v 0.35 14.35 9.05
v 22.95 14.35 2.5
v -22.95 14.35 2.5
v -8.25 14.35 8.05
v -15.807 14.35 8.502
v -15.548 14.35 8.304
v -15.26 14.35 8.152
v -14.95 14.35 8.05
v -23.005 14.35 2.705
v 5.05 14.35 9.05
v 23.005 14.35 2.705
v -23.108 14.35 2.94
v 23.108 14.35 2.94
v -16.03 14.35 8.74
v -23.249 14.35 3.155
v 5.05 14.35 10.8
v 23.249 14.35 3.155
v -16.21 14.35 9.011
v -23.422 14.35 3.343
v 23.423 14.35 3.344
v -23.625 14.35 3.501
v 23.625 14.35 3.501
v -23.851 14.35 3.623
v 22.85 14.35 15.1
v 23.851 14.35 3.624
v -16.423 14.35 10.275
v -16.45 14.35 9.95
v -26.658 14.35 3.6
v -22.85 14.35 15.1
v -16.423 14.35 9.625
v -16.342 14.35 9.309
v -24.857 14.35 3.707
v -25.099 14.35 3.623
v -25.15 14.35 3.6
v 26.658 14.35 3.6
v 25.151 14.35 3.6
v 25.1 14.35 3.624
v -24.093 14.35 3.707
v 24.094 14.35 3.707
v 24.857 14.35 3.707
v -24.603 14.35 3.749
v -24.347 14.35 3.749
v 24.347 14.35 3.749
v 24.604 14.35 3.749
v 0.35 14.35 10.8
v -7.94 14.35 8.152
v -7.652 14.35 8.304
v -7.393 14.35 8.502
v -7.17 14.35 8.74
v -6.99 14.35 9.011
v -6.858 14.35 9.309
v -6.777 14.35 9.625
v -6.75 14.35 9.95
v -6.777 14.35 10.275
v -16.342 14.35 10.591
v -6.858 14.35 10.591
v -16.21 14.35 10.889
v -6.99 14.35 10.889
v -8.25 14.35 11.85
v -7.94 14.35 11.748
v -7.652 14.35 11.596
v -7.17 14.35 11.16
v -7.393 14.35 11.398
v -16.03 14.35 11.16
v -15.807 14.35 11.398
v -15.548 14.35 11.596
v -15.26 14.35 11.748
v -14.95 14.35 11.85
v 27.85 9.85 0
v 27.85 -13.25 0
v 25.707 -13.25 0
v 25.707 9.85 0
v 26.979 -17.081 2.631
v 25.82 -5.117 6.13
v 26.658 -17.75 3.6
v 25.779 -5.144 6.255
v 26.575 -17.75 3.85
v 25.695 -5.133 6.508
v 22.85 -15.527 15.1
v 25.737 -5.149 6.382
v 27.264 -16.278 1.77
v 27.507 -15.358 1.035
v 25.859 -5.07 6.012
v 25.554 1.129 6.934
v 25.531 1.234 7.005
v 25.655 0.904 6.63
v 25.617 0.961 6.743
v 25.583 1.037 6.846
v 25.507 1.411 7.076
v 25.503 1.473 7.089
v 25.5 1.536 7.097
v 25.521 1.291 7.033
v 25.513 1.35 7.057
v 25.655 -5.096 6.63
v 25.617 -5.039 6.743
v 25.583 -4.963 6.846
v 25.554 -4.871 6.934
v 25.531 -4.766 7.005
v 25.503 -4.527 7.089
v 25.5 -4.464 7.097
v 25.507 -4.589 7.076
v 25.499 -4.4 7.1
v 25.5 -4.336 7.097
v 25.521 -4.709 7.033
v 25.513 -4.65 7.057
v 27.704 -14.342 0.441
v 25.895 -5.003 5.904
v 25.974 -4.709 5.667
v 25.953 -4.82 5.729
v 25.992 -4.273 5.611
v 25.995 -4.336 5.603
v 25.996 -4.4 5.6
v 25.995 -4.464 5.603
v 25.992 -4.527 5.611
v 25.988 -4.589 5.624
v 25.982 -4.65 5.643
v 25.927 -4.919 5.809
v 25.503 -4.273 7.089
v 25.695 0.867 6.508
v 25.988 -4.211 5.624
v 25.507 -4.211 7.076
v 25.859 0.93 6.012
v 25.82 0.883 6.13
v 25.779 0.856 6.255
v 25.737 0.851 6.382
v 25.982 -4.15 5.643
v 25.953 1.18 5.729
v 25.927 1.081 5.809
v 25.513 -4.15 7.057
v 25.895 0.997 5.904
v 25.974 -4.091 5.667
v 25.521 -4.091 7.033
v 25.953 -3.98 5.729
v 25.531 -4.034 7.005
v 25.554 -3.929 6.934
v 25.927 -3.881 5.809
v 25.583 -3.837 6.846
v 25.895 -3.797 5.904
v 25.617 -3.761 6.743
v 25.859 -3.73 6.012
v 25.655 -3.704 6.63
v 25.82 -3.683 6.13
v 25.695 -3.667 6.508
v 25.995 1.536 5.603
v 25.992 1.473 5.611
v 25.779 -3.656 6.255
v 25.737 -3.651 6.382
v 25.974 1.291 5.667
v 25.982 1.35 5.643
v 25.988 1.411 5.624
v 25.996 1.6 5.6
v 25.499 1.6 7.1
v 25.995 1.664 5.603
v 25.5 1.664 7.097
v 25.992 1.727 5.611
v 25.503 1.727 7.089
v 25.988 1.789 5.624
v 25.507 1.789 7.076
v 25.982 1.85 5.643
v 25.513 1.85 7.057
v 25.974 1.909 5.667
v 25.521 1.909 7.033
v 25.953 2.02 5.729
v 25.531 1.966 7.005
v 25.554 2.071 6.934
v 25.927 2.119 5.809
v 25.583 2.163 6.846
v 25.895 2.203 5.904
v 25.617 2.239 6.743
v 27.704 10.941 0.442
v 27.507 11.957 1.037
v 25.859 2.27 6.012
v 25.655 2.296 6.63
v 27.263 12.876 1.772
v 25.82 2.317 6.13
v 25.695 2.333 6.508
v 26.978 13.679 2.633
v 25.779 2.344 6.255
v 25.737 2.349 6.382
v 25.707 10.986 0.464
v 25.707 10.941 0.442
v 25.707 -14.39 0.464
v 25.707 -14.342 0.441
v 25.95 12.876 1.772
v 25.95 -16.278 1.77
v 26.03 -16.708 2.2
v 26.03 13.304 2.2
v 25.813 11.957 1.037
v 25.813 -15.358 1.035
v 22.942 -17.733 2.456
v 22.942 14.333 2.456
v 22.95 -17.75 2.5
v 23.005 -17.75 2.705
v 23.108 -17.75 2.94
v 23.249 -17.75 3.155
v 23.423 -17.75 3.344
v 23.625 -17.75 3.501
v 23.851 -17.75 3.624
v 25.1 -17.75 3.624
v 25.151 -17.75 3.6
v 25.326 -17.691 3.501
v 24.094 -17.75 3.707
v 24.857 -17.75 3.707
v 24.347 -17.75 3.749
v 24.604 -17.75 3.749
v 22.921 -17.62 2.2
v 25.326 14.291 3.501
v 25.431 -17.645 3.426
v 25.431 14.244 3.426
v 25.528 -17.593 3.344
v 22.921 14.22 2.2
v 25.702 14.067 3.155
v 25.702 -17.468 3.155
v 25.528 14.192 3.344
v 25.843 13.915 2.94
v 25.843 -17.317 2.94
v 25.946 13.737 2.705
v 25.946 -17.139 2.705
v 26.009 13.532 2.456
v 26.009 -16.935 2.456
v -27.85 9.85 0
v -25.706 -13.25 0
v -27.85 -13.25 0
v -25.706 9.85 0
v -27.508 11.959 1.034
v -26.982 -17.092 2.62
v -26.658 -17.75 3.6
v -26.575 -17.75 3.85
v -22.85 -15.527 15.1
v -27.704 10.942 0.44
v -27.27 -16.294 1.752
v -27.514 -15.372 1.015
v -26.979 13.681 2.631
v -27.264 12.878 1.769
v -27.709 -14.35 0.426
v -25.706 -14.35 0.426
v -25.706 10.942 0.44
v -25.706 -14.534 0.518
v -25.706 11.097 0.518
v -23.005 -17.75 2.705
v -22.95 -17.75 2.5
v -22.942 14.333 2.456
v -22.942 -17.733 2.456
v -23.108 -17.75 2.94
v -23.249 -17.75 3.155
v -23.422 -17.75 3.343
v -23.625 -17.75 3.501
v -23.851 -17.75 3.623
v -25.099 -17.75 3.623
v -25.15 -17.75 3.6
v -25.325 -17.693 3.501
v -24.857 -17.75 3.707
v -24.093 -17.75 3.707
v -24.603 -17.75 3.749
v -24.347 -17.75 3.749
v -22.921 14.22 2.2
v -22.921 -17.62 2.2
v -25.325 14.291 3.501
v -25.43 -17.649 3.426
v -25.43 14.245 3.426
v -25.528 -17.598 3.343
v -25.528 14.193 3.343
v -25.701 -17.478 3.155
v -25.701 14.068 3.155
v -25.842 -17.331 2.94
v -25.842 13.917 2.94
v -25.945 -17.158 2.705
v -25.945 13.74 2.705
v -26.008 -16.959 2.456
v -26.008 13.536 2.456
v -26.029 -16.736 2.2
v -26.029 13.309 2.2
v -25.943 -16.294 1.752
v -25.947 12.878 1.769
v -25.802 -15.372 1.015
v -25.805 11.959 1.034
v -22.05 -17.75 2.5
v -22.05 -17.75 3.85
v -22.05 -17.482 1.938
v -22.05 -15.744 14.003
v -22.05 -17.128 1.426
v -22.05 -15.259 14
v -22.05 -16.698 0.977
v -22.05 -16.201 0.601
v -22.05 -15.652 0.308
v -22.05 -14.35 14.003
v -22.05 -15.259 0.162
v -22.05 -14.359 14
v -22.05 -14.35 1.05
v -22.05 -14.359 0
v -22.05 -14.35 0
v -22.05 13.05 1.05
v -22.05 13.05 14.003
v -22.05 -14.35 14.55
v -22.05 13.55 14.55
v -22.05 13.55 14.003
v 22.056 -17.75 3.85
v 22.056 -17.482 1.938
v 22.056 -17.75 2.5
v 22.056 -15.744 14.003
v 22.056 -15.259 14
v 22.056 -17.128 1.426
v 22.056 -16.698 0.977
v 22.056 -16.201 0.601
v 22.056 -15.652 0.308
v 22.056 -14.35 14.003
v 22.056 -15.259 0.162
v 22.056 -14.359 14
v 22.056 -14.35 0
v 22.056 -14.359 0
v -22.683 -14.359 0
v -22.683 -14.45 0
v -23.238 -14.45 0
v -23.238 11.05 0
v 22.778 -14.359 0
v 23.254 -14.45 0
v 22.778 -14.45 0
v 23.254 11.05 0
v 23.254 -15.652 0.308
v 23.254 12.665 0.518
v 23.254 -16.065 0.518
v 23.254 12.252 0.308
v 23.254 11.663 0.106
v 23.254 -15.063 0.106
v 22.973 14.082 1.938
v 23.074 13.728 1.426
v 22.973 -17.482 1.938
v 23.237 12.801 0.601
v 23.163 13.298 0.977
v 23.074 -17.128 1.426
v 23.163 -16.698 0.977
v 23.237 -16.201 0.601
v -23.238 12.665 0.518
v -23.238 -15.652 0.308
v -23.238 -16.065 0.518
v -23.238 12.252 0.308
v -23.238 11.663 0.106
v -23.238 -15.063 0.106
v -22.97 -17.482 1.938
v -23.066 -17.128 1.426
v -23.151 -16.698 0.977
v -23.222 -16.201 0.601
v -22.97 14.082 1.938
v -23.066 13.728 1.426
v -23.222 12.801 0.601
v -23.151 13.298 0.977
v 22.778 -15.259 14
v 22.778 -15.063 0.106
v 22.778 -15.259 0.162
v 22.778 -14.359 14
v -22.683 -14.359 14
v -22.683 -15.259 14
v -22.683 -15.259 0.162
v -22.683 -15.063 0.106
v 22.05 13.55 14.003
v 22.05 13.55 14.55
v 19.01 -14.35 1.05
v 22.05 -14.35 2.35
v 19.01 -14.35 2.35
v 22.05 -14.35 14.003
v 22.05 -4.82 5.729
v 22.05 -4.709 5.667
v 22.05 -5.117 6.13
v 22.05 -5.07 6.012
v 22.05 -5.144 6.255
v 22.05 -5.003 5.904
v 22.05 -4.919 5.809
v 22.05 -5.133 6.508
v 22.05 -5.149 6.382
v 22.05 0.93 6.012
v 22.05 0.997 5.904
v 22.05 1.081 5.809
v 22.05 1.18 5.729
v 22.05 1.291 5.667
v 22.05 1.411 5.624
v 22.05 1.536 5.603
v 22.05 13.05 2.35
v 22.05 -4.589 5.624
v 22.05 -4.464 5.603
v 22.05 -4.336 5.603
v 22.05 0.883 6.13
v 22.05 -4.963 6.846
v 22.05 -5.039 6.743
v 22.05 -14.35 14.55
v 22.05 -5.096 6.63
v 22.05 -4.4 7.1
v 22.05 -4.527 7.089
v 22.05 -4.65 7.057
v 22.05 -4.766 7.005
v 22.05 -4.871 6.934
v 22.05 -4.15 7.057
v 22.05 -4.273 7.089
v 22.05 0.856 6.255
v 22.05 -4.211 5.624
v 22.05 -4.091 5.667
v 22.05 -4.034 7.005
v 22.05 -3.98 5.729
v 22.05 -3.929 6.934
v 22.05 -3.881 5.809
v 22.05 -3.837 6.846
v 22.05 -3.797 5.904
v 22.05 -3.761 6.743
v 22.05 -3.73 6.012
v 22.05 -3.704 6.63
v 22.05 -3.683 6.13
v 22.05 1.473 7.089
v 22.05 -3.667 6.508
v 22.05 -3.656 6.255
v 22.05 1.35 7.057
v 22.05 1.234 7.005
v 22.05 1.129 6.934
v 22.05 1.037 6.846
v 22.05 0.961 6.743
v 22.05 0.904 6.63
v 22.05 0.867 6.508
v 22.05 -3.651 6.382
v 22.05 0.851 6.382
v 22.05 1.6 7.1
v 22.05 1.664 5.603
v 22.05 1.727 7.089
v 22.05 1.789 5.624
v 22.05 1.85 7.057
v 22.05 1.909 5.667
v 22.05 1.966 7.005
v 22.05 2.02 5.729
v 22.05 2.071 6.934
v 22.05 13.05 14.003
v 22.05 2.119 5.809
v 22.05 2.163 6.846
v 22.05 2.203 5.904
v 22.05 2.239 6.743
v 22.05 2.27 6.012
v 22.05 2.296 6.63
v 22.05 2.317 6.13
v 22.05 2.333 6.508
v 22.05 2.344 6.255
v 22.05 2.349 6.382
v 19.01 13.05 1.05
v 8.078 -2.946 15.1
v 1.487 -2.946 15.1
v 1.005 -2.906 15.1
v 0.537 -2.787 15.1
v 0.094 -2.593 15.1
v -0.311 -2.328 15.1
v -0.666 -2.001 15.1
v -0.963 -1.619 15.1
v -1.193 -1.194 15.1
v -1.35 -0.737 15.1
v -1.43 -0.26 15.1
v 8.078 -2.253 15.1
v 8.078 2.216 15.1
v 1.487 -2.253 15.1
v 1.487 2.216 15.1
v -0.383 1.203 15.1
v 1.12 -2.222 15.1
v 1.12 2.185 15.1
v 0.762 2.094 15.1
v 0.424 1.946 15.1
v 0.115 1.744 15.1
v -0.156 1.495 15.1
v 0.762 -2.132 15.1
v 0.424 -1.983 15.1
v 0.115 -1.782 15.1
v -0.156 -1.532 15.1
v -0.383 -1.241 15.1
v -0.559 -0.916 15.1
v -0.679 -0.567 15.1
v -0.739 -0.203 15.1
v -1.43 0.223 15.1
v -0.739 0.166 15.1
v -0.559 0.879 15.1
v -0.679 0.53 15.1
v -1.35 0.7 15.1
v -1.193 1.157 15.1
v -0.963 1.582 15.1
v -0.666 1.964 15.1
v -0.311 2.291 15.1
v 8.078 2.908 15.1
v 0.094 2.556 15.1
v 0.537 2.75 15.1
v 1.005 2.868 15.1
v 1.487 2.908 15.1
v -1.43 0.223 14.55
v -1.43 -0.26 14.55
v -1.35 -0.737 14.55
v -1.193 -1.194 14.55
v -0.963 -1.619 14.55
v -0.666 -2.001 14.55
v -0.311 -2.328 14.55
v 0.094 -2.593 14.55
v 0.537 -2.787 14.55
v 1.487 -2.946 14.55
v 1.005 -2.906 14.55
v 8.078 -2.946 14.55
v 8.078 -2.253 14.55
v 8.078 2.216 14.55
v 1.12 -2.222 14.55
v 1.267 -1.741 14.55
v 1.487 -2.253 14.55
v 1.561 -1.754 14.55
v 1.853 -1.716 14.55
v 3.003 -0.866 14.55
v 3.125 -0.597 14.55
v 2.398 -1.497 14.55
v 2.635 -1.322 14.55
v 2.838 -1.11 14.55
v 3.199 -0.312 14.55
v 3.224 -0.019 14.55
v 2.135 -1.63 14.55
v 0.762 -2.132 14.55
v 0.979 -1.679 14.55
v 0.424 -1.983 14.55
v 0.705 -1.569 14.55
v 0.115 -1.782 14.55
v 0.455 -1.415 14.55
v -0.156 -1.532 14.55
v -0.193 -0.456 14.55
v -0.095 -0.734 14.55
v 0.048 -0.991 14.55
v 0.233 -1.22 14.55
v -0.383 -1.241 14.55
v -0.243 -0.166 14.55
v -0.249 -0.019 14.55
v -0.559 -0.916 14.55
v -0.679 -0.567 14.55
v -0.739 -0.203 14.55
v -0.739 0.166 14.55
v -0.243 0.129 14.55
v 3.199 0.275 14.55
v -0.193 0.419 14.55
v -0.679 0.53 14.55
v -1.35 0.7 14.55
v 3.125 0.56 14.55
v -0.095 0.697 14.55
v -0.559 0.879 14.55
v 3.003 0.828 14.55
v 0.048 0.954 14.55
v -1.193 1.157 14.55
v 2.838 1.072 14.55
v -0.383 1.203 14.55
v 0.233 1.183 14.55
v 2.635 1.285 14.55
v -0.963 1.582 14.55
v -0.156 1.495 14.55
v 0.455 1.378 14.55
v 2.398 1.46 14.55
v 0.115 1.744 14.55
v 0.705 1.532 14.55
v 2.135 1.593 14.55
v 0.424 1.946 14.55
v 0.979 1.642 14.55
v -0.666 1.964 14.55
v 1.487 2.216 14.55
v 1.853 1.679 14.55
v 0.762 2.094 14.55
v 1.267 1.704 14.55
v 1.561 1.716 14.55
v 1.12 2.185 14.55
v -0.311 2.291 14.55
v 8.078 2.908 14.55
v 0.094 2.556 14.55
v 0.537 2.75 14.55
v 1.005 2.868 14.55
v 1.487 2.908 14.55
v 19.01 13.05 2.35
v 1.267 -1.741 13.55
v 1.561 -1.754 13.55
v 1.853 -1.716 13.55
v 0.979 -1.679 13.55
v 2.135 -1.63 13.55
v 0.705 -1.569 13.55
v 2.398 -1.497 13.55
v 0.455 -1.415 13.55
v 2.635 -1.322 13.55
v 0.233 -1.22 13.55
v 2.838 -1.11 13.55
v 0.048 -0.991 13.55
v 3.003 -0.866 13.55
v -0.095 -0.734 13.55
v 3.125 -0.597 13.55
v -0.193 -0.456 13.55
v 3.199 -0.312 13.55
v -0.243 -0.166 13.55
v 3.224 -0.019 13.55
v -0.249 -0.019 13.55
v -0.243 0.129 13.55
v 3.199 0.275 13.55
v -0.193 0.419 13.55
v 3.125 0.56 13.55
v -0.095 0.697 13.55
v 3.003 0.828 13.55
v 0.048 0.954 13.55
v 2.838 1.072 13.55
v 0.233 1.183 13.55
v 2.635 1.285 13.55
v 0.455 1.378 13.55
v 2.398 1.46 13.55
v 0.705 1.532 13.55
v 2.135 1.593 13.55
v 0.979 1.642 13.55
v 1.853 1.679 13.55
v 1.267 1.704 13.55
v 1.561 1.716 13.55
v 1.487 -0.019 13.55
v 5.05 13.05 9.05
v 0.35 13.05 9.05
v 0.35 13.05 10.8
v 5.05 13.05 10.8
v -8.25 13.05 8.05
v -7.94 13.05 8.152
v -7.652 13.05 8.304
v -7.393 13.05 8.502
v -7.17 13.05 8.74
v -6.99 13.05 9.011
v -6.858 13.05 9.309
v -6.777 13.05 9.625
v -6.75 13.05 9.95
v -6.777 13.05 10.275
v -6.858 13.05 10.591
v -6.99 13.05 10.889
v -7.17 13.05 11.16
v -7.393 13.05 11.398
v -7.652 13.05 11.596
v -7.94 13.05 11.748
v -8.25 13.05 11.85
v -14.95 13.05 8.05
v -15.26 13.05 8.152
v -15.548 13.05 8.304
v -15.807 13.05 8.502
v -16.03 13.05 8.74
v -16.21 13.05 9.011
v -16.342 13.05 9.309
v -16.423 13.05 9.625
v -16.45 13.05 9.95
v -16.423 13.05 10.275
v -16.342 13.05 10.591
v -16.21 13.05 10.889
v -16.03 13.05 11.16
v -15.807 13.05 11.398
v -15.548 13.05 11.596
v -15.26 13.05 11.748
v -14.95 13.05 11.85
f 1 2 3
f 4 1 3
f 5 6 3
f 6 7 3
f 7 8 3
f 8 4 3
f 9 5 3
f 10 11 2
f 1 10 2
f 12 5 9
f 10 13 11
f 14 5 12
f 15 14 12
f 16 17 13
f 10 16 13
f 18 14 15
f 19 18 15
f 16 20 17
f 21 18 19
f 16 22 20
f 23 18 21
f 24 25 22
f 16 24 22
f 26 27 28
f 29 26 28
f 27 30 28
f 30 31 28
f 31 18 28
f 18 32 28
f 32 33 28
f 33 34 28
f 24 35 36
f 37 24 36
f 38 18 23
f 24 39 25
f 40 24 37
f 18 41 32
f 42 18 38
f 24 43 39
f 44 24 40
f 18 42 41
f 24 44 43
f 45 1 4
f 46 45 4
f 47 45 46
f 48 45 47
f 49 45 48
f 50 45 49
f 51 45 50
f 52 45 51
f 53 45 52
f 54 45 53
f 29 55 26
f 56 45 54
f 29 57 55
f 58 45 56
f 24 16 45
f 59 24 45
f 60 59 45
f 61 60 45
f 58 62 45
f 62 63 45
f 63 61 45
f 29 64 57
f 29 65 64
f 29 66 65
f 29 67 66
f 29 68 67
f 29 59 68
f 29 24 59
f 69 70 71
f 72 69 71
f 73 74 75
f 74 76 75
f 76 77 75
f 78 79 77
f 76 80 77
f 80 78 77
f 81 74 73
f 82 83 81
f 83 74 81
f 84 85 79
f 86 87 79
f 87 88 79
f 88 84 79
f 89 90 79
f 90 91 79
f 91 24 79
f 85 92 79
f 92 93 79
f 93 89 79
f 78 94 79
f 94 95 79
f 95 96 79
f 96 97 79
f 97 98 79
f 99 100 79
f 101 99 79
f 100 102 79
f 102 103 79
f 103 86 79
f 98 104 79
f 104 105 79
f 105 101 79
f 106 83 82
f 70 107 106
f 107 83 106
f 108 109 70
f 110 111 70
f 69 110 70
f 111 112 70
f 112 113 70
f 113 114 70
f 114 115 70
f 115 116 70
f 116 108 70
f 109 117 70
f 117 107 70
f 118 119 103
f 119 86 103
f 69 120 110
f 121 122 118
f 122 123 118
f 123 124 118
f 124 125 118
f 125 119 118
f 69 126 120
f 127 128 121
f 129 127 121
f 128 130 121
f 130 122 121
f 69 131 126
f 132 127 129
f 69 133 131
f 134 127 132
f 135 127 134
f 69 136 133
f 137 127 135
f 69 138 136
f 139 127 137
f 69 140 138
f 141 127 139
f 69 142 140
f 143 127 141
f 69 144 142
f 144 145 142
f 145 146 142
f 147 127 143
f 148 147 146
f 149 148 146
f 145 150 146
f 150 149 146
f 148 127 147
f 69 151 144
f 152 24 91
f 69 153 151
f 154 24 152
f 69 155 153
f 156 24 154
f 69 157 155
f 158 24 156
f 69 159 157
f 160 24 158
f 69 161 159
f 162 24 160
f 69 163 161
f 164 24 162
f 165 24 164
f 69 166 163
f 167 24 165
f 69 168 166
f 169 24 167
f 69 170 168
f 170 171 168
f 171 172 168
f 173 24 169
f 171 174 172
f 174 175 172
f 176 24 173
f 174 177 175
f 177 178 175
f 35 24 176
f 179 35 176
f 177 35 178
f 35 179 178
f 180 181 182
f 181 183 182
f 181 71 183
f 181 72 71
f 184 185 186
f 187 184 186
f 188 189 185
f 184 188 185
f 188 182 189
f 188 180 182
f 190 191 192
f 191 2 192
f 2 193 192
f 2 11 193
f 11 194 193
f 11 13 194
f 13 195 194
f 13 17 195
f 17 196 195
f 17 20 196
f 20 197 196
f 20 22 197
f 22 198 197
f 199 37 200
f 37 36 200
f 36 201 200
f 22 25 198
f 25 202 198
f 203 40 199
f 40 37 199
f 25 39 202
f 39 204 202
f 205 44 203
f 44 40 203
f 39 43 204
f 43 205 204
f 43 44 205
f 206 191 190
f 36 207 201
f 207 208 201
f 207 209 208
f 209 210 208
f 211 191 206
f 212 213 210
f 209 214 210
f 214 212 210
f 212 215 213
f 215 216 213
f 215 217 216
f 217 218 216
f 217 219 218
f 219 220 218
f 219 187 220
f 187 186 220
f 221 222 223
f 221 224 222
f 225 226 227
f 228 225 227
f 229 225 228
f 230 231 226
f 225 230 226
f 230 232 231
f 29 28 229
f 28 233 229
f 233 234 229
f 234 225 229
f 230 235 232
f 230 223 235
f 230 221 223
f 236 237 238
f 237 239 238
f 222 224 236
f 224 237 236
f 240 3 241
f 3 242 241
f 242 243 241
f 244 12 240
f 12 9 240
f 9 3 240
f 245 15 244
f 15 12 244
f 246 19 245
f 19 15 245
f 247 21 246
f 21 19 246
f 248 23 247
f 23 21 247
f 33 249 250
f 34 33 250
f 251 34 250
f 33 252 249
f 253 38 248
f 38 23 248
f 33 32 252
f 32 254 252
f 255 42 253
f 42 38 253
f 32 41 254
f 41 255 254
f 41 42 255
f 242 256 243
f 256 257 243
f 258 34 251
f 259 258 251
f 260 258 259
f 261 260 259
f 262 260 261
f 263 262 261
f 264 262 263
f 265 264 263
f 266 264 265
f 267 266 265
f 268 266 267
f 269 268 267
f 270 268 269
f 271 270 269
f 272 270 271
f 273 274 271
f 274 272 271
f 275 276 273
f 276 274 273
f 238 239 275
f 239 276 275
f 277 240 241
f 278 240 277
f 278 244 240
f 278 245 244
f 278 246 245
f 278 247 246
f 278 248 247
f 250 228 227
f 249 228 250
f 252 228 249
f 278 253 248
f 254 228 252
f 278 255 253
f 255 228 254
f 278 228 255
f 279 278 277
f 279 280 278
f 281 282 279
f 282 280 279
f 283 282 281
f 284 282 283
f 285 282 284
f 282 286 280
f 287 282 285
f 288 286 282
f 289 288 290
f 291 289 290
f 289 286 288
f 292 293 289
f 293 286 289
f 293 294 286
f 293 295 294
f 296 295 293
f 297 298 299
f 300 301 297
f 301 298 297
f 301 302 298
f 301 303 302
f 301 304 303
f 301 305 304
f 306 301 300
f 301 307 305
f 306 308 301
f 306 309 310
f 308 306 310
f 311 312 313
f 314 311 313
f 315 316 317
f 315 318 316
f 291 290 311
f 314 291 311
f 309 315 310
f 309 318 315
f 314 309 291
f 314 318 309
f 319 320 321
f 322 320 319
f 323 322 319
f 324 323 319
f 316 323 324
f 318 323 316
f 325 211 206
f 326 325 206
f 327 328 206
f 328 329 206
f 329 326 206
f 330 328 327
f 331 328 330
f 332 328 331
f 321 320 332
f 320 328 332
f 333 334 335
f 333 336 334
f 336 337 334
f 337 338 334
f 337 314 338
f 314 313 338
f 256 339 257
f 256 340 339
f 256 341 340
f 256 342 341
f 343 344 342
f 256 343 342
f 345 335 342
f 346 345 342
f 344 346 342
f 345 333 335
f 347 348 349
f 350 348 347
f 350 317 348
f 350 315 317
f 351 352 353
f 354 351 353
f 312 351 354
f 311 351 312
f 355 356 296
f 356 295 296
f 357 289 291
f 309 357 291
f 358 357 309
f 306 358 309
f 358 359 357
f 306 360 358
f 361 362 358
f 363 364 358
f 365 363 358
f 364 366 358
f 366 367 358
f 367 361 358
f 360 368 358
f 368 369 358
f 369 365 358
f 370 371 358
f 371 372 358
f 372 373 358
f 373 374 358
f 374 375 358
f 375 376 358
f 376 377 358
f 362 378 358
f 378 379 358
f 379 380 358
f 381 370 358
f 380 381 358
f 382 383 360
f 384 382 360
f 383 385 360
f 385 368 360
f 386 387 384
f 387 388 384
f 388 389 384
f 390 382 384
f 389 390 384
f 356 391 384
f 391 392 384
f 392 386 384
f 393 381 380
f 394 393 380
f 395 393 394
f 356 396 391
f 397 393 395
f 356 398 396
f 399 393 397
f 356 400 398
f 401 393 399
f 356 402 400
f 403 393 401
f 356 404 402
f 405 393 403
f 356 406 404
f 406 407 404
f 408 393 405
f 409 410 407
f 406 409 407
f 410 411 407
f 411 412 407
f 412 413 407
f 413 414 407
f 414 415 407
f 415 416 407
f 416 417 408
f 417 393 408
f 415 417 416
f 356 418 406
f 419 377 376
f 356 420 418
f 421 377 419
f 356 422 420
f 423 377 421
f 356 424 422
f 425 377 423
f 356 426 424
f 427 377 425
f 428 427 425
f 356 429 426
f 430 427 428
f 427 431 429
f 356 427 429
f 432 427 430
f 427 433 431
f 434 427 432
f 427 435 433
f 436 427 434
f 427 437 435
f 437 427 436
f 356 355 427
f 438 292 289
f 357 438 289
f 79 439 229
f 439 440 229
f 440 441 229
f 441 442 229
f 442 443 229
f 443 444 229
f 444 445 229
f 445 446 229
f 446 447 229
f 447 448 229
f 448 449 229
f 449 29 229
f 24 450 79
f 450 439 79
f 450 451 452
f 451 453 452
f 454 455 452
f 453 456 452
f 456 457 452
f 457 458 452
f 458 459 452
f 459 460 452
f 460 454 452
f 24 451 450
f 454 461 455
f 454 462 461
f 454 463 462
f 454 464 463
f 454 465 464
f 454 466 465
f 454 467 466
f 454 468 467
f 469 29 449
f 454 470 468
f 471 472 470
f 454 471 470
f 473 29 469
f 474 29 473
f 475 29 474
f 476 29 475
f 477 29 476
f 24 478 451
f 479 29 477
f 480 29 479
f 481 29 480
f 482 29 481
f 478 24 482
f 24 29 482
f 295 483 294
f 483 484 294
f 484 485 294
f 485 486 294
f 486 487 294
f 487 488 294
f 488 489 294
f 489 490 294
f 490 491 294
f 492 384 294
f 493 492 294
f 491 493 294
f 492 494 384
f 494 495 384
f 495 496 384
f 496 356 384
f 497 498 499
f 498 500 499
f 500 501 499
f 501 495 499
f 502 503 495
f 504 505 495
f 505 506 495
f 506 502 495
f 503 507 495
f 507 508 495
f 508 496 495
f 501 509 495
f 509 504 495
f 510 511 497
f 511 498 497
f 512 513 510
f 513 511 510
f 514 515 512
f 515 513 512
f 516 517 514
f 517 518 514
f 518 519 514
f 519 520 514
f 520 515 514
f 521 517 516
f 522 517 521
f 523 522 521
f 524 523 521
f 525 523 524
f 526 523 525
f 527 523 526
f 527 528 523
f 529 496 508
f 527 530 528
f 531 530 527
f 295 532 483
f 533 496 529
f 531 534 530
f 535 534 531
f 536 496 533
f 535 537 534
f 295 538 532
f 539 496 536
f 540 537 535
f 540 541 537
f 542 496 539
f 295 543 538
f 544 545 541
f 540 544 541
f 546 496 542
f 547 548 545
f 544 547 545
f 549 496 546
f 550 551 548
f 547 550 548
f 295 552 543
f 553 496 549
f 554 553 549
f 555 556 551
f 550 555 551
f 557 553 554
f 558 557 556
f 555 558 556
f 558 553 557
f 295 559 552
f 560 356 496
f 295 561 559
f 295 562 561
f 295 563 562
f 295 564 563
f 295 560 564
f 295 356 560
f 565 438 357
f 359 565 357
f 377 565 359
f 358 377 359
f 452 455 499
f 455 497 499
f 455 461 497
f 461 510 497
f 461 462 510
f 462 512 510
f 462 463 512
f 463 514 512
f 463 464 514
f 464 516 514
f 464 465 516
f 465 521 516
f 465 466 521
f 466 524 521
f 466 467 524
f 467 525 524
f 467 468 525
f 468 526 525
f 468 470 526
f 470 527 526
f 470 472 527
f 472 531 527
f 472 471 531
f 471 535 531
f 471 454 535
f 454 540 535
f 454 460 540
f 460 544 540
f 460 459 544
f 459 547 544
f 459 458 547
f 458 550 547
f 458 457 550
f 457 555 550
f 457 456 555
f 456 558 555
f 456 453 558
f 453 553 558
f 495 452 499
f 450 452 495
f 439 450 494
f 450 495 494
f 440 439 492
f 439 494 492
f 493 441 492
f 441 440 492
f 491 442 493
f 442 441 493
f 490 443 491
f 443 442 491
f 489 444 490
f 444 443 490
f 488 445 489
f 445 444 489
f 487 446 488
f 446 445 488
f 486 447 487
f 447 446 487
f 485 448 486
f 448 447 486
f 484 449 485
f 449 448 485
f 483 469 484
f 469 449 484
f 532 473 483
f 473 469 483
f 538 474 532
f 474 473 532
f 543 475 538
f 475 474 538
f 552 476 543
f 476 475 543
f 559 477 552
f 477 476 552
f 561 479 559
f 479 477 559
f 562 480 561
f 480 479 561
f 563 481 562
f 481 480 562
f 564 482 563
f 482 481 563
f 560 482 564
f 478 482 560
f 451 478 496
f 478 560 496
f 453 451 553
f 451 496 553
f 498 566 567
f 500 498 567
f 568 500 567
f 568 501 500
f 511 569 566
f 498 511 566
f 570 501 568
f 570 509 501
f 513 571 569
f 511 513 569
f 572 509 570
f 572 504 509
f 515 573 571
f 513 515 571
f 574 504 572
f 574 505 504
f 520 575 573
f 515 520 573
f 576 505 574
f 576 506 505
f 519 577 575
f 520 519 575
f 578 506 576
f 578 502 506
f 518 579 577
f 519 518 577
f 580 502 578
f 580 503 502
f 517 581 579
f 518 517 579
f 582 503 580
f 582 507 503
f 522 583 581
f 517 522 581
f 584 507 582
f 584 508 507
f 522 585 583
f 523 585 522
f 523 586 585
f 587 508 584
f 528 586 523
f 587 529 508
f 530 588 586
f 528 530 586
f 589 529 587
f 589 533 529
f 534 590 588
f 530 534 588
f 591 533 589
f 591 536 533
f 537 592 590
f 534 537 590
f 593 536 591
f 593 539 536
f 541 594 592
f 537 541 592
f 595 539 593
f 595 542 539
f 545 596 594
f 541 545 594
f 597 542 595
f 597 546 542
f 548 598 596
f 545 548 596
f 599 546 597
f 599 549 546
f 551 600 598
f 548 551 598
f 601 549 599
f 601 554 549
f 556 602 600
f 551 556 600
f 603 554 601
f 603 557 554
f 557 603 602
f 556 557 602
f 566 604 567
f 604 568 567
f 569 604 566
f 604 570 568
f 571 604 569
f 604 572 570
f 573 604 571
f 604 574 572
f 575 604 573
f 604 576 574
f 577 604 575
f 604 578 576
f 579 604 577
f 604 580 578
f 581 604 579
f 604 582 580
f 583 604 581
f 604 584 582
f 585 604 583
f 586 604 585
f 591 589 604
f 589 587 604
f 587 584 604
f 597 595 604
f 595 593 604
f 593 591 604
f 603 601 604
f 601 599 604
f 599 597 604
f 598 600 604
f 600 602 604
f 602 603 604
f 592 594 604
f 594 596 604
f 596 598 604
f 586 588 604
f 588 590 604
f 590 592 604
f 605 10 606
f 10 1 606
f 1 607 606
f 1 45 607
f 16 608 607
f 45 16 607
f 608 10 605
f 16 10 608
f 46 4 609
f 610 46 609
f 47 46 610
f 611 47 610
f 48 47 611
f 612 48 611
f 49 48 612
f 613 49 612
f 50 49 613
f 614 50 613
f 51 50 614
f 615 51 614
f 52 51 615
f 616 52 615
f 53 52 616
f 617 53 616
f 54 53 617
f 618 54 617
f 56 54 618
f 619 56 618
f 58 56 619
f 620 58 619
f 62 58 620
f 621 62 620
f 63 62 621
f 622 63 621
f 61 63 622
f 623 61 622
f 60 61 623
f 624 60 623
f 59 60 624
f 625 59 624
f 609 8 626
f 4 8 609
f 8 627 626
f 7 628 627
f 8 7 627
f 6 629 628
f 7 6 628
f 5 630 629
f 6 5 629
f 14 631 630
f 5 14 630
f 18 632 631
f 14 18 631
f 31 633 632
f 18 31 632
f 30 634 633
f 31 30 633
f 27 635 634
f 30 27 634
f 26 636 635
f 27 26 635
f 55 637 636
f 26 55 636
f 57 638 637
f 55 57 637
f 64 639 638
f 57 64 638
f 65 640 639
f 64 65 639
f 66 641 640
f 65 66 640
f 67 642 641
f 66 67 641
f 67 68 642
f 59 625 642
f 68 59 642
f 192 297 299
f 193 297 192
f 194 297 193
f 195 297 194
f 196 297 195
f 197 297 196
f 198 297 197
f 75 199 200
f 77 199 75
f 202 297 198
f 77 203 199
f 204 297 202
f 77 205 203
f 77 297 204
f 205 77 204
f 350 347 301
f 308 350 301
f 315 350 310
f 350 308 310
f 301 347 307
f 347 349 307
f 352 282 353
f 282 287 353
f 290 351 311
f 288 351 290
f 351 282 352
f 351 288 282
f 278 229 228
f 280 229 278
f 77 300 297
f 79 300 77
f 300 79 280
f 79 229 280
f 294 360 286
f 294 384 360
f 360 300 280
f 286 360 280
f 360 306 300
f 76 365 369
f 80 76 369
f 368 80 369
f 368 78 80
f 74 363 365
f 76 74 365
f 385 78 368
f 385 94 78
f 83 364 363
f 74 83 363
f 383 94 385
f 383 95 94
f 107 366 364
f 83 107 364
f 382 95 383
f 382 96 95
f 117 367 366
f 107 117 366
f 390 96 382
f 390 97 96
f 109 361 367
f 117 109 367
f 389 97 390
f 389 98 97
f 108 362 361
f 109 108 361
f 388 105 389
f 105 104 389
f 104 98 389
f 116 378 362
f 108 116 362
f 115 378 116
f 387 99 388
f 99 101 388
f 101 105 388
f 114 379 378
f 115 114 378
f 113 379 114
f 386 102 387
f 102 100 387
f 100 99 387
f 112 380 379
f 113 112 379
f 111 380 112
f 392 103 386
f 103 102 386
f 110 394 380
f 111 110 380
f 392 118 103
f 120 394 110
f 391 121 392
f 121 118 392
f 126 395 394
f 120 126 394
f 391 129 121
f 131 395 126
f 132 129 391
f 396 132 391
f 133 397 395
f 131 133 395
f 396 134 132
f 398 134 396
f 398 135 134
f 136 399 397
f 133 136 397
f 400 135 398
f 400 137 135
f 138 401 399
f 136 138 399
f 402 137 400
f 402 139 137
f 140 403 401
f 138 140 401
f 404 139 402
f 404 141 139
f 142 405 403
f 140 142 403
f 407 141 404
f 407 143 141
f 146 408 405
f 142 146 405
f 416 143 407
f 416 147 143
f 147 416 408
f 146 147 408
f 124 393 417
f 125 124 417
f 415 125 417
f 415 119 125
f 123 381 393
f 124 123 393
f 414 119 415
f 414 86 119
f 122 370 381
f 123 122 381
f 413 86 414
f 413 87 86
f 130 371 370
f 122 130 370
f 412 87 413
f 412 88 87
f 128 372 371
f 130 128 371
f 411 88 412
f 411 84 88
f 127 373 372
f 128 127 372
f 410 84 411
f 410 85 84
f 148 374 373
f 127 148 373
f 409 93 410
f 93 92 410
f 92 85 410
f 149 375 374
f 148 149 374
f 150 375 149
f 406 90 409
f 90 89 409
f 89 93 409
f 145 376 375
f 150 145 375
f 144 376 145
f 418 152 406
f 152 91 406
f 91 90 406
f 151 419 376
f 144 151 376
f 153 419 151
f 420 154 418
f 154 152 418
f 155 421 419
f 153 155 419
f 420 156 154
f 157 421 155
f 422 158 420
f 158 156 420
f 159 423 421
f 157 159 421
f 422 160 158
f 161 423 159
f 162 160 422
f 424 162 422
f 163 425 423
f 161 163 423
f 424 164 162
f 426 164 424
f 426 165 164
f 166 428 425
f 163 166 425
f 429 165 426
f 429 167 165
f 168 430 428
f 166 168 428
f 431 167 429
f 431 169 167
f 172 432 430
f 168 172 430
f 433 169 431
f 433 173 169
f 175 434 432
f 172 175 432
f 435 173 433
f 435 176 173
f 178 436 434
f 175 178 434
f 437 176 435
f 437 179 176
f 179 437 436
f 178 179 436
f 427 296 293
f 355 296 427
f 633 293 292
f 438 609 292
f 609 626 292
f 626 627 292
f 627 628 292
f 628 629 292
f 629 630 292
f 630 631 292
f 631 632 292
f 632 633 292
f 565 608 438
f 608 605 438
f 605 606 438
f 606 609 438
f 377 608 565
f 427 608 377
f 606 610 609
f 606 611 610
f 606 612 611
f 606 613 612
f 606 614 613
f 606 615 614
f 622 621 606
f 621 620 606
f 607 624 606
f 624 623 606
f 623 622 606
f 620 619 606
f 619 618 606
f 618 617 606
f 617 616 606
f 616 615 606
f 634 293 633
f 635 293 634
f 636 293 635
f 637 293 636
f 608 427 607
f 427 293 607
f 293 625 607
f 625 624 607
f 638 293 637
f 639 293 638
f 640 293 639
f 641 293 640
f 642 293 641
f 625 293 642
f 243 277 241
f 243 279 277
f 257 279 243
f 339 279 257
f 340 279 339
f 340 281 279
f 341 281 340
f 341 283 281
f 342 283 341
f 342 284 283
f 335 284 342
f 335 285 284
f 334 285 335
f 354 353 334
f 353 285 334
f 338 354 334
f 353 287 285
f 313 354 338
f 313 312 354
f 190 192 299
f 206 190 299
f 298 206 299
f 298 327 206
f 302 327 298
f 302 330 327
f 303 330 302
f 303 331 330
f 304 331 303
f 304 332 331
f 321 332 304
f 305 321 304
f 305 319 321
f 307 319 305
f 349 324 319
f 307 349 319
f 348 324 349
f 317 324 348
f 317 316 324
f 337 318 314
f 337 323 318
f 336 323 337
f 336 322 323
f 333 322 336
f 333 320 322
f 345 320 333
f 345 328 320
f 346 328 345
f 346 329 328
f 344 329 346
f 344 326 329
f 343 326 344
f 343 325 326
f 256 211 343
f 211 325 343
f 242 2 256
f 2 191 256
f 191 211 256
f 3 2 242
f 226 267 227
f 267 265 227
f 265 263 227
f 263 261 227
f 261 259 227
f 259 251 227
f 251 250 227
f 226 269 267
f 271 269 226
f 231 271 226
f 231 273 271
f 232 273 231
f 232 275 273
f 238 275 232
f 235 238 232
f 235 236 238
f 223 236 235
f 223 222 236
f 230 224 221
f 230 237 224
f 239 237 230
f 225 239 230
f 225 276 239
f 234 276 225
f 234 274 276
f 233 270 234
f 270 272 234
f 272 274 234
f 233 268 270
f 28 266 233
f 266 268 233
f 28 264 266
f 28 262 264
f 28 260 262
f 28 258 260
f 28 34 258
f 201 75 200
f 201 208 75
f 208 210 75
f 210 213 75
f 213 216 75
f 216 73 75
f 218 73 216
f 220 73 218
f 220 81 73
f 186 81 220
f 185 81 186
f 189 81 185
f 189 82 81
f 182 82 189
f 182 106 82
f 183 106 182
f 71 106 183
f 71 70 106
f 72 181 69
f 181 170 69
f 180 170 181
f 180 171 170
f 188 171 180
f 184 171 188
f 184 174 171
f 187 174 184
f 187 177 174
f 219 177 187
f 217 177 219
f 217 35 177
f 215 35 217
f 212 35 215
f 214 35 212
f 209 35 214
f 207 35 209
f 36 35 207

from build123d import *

# Parameters (mm, degrees)
ESQUISSE1_W              = 45.7
ESQUISSE1_H              = 28.7
BOSS_EXTRU_1_DEPTH       = 15.1
ESQUISSE2_W              = 44.1
ESQUISSE2_H              = 13.5
ENL_V_MAT_EXTRU_1_DEPTH  = 27.9
ESQUISSE3_W              = 3.040200108
ESQUISSE3_H              = 27.9
BOSS_EXTRU_2_DEPTH       = 1.3
ENL_V_MAT_EXTRU_2_DEPTH  = 1.3
ESQUISSE5_R              = 1.73665182
BOSS_EXTRU_3_DEPTH       = 1
ESQUISSE6_W              = 4.7
ESQUISSE6_H              = 1.75
ENL_V_MAT_EXTRU_3_DEPTH  = 10.5
ENL_V_MAT_EXTRU_4_DEPTH  = 10.5
BOSS_EXTRU_5_DEPTH       = 28.7
ENL_V_MAT_EXTRU_6_DEPTH  = 28.7
BOSS_EXTRU_7_DEPTH       = 3.4
ESQUISSE25_W             = 45.461360866
ESQUISSE25_H             = 0.9
ENL_V_MAT_EXTRU_14_DEPTH = 14
ENL_V_MAT_EXTRU_15_DEPTH = 57
BOSS_EXTRU_9_DEPTH       = 44.3
ESQUISSE32_R             = 0.75
ENL_V_MAT_EXTRU_17_DEPTH = 44.3
BOSS_EXTRU_10_START      = 0.5
ESQUISSE35_W             = 4.7
ESQUISSE35_H             = 1.75
BOSS_EXTRU_10_DEPTH      = 0.5
ENL_V_START              = -10
ENL_V_MAT_EXTRU_19_DEPTH = 74.3
ENL_V_START_2            = -2.2
ENL_V_MAT_EXTRU_20_DEPTH = 5
ENL_V_MAT_EXTRU_21_DEPTH = 5


with BuildPart() as part:
    # Esquisse1 → Boss.-Extru.1 (new body)
    with BuildSketch(Plane.XY):
        Rectangle(ESQUISSE1_W, ESQUISSE1_H)
    extrude(amount=BOSS_EXTRU_1_DEPTH)

    # Esquisse2 → Enlèv. mat.-Extru.1 (cut)
    with BuildSketch(Plane.XZ.offset(14.35)):
        with Locations((0, 7.8)):
            Rectangle(ESQUISSE2_W, ESQUISSE2_H)
    extrude(amount=-ENL_V_MAT_EXTRU_1_DEPTH, mode=Mode.SUBTRACT)

    # Esquisse3 → Boss.-Extru.2 (add)
    with BuildSketch(Plane.XY.offset(1.05)):
        with Locations((20.529899946, -0.4)):
            Rectangle(ESQUISSE3_W, ESQUISSE3_H)
    extrude(amount=BOSS_EXTRU_2_DEPTH)

    # Esquisse4 → Enlèv. mat.-Extru.2 (cut)
    with BuildSketch(Plane.XY.offset(15.1)):
        with BuildLine():
            Line((1.487226604, 2.215512883), (8.077709912, 2.215512883))
            Line((8.077709912, 2.215512883), (8.077709912, 2.908321808))
            Line((8.077709912, 2.908321808), (1.487226604, 2.908321808))
            ThreePointArc((1.487226604, 2.908321808), (-1.439685537, -0.018590333), (1.487226604, -2.945502474))
            Line((1.487226604, -2.945502474), (8.077709912, -2.945502474))
            Line((8.077709912, -2.945502474), (8.077709912, -2.252693548))
            Line((8.077709912, -2.252693548), (1.487226604, -2.252693548))
            ThreePointArc((1.487226604, -2.252693548), (-0.746876612, -0.018590333), (1.487226604, 2.215512883))
        make_face()
    extrude(amount=-ENL_V_MAT_EXTRU_2_DEPTH, mode=Mode.SUBTRACT)

    # Esquisse5 → Boss.-Extru.3 (add)
    with BuildSketch(Plane(origin=(0, 0, 14.55), x_dir=(-1, 0, 0), z_dir=(0, 0, -1))):
        with Locations((-1.487226604, -0.018590333)):
            Circle(ESQUISSE5_R)
    extrude(amount=BOSS_EXTRU_3_DEPTH)

    # Esquisse6 → Enlèv. mat.-Extru.3 (cut)
    with BuildSketch(Plane.XZ.offset(-13.55)):
        with Locations((2.7, 9.925)):
            Rectangle(ESQUISSE6_W, ESQUISSE6_H)
    extrude(amount=-ENL_V_MAT_EXTRU_3_DEPTH, mode=Mode.SUBTRACT)

    # Esquisse7 → Enlèv. mat.-Extru.4 (cut)
    with BuildSketch(Plane.XZ.offset(-13.55)):
        with BuildLine():
            Line((-14.95, 11.85), (-8.25, 11.85))
            ThreePointArc((-8.25, 11.85), (-6.75, 9.95), (-8.25, 8.05))
            Line((-8.25, 8.05), (-14.95, 8.05))
            ThreePointArc((-14.95, 8.05), (-16.45, 9.95), (-14.95, 11.85))
        make_face()
    extrude(amount=-ENL_V_MAT_EXTRU_4_DEPTH, mode=Mode.SUBTRACT)

    # Esquisse9 → Boss.-Extru.5 (add)
    with BuildSketch(Plane(origin=(0, 14.35, 0), x_dir=(1, 0, 0), z_dir=(0, 1, 0))):
        Polygon((22.85, 0), (22.85, -15.1), (27.85, 0), align=None)
        Polygon((-22.85, 0), (-22.85, -15.1), (-27.85, 0), align=None)
    extrude(amount=-BOSS_EXTRU_5_DEPTH)

    # Esquisse11 → Enlèv. mat.-Extru.6 (cut)
    with BuildSketch(Plane(origin=(0, 14.35, 0), x_dir=(1, 0, 0), z_dir=(0, 1, 0))):
        with BuildLine():
            Line((-25.706241432, 0), (-23.237525969, 0))
            Line((-23.237525969, 0), (-23.237525969, -0.517551291))
            Line((-23.237525969, -0.517551291), (-22.920831586, -2.2))
            ThreePointArc((-22.920831586, -2.2), (-24.475, -3.754168414), (-26.029168414, -2.2))
            Line((-26.029168414, -2.2), (-25.706241432, -0.517551291))
            Line((-25.706241432, -0.517551291), (-25.706241432, 0))
        make_face()
        with BuildLine():
            Line((23.253932079, 0), (25.706636502, 0))
            Line((25.706636502, 0), (25.706636502, -0.464338322))
            Line((25.706636502, -0.464338322), (26.030126108, -2.2))
            ThreePointArc((26.030126108, -2.2), (24.475478847, -3.754647261), (22.920831586, -2.2))
            Line((22.920831586, -2.2), (23.253932079, -0.517551291))
            Line((23.253932079, -0.517551291), (23.253932079, 0))
        make_face()
    extrude(amount=-ENL_V_MAT_EXTRU_6_DEPTH, mode=Mode.SUBTRACT)

    # Esquisse17 → Boss.-Extru.7 (add)
    with BuildSketch(Plane(origin=(0, -14.35, 0), x_dir=(-1, 0, 0), z_dir=(0, -1, 0))):
        with BuildLine():
            Line((27.85, 0), (22.85, -15.1))
            Line((22.85, -15.1), (22.05, -15.1))
            Line((22.05, -15.1), (22.05, -1.05))
            Line((22.05, -1.05), (22.05, 0))
            Line((22.05, 0), (23.237525969, 0))
            Line((23.237525969, 0), (23.237525969, -0.517551291))
            Line((23.237525969, -0.517551291), (22.920831586, -2.2))
            ThreePointArc((22.920831586, -2.2), (24.475, -3.754168414), (26.029168414, -2.2))
            Line((26.029168414, -2.2), (25.706241432, -0.517551291))
            Line((25.706241432, -0.517551291), (25.706241432, 0))
            Line((25.706241432, 0), (27.85, 0))
        make_face()
        with BuildLine():
            Line((-27.85, 0), (-22.85, -15.1))
            Line((-22.85, -15.1), (-22.055908753, -15.1))
            Line((-22.055908753, -15.1), (-22.055908753, 0))
            Line((-22.055908753, 0), (-23.253932079, 0))
            Line((-23.253932079, 0), (-23.253932079, -0.517551291))
            Line((-23.253932079, -0.517551291), (-22.920831586, -2.2))
            ThreePointArc((-22.920831586, -2.2), (-24.475478847, -3.754647261), (-26.030126108, -2.2))
            Line((-26.030126108, -2.2), (-25.706636502, -0.464338322))
            Line((-25.706636502, -0.464338322), (-25.706636502, 0))
            Line((-25.706636502, 0), (-27.85, 0))
        make_face()
    extrude(amount=BOSS_EXTRU_7_DEPTH)

    # Esquisse25 → Enlèv. mat.-Extru.14 (cut)
    with BuildSketch(Plane(origin=(0, 0, 0), x_dir=(-1, 0, 0), z_dir=(0, 0, -1))):
        with Locations((-0.047301347, -14.809065101)):
            Rectangle(ESQUISSE25_W, ESQUISSE25_H)
    extrude(amount=-ENL_V_MAT_EXTRU_14_DEPTH, mode=Mode.SUBTRACT)

    # Esquisse26 → Enlèv. mat.-Extru.15 (cut, symmetric)
    with BuildSketch(Plane(origin=(-22.05, 0, 0), x_dir=(0, 0, -1), z_dir=(1, 0, 0))):
        Polygon((-3.85, -17.75), (-15.1, -15.527418892), (-15.1, -17.75), align=None)
    extrude(amount=ENL_V_MAT_EXTRU_15_DEPTH, both=True, mode=Mode.SUBTRACT)

    # Esquisse31 → Boss.-Extru.9 (add)
    with BuildSketch(Plane.ZY.offset(-22.055908753)):
        Polygon((14.002730008, -14.35), (14.002730008, -15.744198586), (15.1, -15.527418892), (15.1, -14.35), align=None)
    extrude(amount=BOSS_EXTRU_9_DEPTH)

    # Esquisse32 → Enlèv. mat.-Extru.17 (cut)
    with BuildSketch(Plane.ZY.offset(-22.05)):
        with Locations((6.35, 1.6)):
            Circle(ESQUISSE32_R)
        with Locations((6.35, -4.4)):
            Circle(ESQUISSE32_R)
    extrude(amount=-ENL_V_MAT_EXTRU_17_DEPTH, mode=Mode.SUBTRACT)

    # Esquisse35 → Boss.-Extru.10 (add)
    with BuildSketch(Plane.XZ.offset(-13.55).offset(BOSS_EXTRU_10_START)):
        Polygon((-22.05, 14.002730008), (-22.05, 1.05), (19.009799892, 1.05), (19.009799892, 2.35), (22.05, 2.35), (22.055908753, 14.002730008), align=None)
        with Locations((2.7, 9.925)):
            Rectangle(ESQUISSE35_W, ESQUISSE35_H, mode=Mode.SUBTRACT)
        with BuildLine():
            Line((-14.95, 11.85), (-8.25, 11.85))
            ThreePointArc((-8.25, 11.85), (-6.75, 9.95), (-8.25, 8.05))
            Line((-8.25, 8.05), (-14.95, 8.05))
            ThreePointArc((-14.95, 8.05), (-16.45, 9.95), (-14.95, 11.85))
        make_face(mode=Mode.SUBTRACT)
    extrude(amount=-BOSS_EXTRU_10_DEPTH)

    # Esquisse34 → Enlèv. mat.-Extru.19 (cut)
    with BuildSketch(Plane(origin=(-22.05, 0, 0), x_dir=(0, 0, -1), z_dir=(1, 0, 0)).offset(ENL_V_START)):
        with BuildLine():
            Line((0, 11.05), (2.149848575, 13.466695377))
            Line((2.149848575, 13.466695377), (2.704974512, 17.199769042))
            Line((2.704974512, 17.199769042), (-2.5, 14.35))
            ThreePointArc((-2.5, 14.35), (-0.778882836, 13.056906943), (0, 11.05))
        make_face()
        with BuildLine():
            Line((0, -14.45), (2.615471919, -12.438405433))
            Line((2.615471919, -12.438405433), (4.64721223, -16.898892781))
            Line((4.64721223, -16.898892781), (-1.312082168, -20.336026793))
            Line((-1.312082168, -20.336026793), (-2.5, -17.75))
            ThreePointArc((-2.5, -17.75), (-0.778882836, -16.456906943), (0, -14.45))
        make_face()
    extrude(amount=ENL_V_MAT_EXTRU_19_DEPTH, mode=Mode.SUBTRACT)

    # Esquisse36 → Enlèv. mat.-Extru.20 (cut)
    with BuildSketch(Plane(origin=(-22.05, 0, 0), x_dir=(0, 0, -1), z_dir=(1, 0, 0)).offset(ENL_V_START_2)):
        with BuildLine():
            Line((-3.6, 14.35), (0.233137936, 16.139667024))
            Line((0.233137936, 16.139667024), (1.281634534, 9.28497369))
            Line((1.281634534, 9.28497369), (0, 9.85))
            ThreePointArc((0, 9.85), (-1.384829505, 12.432136396), (-3.6, 14.35))
        make_face()
        with BuildLine():
            Line((0, -13.25), (2.408593259, -12.125443566))
            Line((2.408593259, -12.125443566), (1.20429663, -19.634076372))
            Line((1.20429663, -19.634076372), (-3.6, -17.75))
            ThreePointArc((-3.6, -17.75), (-1.366017246, -15.847186204), (0, -13.25))
        make_face()
    extrude(amount=-ENL_V_MAT_EXTRU_20_DEPTH, mode=Mode.SUBTRACT)

    # Esquisse37 → Enlèv. mat.-Extru.21 (cut)
    with BuildSketch(Plane.ZY.offset(-22.05).offset(ENL_V_START_2)):
        with BuildLine():
            Line((3.6, -19.426253986), (3.6, -17.75))
            ThreePointArc((3.6, -17.75), (1.385821361, -15.831342911), (0, -13.25))
            Line((0, -13.25), (-1.954897573, -12.307105099))
            Line((-1.954897573, -12.307105099), (-2.275009075, -21.310589074))
            Line((-2.275009075, -21.310589074), (3.6, -19.426253986))
        make_face()
        with BuildLine():
            Line((3.6, 14.35), (1.25201602, 16.69798398))
            Line((1.25201602, 16.69798398), (-2.772630017, 8.353712777))
            Line((-2.772630017, 8.353712777), (0, 9.85))
            ThreePointArc((0, 9.85), (1.388075747, 12.429539402), (3.6, 14.35))
        make_face()
    extrude(amount=-ENL_V_MAT_EXTRU_21_DEPTH, mode=Mode.SUBTRACT)


solid = part.part
